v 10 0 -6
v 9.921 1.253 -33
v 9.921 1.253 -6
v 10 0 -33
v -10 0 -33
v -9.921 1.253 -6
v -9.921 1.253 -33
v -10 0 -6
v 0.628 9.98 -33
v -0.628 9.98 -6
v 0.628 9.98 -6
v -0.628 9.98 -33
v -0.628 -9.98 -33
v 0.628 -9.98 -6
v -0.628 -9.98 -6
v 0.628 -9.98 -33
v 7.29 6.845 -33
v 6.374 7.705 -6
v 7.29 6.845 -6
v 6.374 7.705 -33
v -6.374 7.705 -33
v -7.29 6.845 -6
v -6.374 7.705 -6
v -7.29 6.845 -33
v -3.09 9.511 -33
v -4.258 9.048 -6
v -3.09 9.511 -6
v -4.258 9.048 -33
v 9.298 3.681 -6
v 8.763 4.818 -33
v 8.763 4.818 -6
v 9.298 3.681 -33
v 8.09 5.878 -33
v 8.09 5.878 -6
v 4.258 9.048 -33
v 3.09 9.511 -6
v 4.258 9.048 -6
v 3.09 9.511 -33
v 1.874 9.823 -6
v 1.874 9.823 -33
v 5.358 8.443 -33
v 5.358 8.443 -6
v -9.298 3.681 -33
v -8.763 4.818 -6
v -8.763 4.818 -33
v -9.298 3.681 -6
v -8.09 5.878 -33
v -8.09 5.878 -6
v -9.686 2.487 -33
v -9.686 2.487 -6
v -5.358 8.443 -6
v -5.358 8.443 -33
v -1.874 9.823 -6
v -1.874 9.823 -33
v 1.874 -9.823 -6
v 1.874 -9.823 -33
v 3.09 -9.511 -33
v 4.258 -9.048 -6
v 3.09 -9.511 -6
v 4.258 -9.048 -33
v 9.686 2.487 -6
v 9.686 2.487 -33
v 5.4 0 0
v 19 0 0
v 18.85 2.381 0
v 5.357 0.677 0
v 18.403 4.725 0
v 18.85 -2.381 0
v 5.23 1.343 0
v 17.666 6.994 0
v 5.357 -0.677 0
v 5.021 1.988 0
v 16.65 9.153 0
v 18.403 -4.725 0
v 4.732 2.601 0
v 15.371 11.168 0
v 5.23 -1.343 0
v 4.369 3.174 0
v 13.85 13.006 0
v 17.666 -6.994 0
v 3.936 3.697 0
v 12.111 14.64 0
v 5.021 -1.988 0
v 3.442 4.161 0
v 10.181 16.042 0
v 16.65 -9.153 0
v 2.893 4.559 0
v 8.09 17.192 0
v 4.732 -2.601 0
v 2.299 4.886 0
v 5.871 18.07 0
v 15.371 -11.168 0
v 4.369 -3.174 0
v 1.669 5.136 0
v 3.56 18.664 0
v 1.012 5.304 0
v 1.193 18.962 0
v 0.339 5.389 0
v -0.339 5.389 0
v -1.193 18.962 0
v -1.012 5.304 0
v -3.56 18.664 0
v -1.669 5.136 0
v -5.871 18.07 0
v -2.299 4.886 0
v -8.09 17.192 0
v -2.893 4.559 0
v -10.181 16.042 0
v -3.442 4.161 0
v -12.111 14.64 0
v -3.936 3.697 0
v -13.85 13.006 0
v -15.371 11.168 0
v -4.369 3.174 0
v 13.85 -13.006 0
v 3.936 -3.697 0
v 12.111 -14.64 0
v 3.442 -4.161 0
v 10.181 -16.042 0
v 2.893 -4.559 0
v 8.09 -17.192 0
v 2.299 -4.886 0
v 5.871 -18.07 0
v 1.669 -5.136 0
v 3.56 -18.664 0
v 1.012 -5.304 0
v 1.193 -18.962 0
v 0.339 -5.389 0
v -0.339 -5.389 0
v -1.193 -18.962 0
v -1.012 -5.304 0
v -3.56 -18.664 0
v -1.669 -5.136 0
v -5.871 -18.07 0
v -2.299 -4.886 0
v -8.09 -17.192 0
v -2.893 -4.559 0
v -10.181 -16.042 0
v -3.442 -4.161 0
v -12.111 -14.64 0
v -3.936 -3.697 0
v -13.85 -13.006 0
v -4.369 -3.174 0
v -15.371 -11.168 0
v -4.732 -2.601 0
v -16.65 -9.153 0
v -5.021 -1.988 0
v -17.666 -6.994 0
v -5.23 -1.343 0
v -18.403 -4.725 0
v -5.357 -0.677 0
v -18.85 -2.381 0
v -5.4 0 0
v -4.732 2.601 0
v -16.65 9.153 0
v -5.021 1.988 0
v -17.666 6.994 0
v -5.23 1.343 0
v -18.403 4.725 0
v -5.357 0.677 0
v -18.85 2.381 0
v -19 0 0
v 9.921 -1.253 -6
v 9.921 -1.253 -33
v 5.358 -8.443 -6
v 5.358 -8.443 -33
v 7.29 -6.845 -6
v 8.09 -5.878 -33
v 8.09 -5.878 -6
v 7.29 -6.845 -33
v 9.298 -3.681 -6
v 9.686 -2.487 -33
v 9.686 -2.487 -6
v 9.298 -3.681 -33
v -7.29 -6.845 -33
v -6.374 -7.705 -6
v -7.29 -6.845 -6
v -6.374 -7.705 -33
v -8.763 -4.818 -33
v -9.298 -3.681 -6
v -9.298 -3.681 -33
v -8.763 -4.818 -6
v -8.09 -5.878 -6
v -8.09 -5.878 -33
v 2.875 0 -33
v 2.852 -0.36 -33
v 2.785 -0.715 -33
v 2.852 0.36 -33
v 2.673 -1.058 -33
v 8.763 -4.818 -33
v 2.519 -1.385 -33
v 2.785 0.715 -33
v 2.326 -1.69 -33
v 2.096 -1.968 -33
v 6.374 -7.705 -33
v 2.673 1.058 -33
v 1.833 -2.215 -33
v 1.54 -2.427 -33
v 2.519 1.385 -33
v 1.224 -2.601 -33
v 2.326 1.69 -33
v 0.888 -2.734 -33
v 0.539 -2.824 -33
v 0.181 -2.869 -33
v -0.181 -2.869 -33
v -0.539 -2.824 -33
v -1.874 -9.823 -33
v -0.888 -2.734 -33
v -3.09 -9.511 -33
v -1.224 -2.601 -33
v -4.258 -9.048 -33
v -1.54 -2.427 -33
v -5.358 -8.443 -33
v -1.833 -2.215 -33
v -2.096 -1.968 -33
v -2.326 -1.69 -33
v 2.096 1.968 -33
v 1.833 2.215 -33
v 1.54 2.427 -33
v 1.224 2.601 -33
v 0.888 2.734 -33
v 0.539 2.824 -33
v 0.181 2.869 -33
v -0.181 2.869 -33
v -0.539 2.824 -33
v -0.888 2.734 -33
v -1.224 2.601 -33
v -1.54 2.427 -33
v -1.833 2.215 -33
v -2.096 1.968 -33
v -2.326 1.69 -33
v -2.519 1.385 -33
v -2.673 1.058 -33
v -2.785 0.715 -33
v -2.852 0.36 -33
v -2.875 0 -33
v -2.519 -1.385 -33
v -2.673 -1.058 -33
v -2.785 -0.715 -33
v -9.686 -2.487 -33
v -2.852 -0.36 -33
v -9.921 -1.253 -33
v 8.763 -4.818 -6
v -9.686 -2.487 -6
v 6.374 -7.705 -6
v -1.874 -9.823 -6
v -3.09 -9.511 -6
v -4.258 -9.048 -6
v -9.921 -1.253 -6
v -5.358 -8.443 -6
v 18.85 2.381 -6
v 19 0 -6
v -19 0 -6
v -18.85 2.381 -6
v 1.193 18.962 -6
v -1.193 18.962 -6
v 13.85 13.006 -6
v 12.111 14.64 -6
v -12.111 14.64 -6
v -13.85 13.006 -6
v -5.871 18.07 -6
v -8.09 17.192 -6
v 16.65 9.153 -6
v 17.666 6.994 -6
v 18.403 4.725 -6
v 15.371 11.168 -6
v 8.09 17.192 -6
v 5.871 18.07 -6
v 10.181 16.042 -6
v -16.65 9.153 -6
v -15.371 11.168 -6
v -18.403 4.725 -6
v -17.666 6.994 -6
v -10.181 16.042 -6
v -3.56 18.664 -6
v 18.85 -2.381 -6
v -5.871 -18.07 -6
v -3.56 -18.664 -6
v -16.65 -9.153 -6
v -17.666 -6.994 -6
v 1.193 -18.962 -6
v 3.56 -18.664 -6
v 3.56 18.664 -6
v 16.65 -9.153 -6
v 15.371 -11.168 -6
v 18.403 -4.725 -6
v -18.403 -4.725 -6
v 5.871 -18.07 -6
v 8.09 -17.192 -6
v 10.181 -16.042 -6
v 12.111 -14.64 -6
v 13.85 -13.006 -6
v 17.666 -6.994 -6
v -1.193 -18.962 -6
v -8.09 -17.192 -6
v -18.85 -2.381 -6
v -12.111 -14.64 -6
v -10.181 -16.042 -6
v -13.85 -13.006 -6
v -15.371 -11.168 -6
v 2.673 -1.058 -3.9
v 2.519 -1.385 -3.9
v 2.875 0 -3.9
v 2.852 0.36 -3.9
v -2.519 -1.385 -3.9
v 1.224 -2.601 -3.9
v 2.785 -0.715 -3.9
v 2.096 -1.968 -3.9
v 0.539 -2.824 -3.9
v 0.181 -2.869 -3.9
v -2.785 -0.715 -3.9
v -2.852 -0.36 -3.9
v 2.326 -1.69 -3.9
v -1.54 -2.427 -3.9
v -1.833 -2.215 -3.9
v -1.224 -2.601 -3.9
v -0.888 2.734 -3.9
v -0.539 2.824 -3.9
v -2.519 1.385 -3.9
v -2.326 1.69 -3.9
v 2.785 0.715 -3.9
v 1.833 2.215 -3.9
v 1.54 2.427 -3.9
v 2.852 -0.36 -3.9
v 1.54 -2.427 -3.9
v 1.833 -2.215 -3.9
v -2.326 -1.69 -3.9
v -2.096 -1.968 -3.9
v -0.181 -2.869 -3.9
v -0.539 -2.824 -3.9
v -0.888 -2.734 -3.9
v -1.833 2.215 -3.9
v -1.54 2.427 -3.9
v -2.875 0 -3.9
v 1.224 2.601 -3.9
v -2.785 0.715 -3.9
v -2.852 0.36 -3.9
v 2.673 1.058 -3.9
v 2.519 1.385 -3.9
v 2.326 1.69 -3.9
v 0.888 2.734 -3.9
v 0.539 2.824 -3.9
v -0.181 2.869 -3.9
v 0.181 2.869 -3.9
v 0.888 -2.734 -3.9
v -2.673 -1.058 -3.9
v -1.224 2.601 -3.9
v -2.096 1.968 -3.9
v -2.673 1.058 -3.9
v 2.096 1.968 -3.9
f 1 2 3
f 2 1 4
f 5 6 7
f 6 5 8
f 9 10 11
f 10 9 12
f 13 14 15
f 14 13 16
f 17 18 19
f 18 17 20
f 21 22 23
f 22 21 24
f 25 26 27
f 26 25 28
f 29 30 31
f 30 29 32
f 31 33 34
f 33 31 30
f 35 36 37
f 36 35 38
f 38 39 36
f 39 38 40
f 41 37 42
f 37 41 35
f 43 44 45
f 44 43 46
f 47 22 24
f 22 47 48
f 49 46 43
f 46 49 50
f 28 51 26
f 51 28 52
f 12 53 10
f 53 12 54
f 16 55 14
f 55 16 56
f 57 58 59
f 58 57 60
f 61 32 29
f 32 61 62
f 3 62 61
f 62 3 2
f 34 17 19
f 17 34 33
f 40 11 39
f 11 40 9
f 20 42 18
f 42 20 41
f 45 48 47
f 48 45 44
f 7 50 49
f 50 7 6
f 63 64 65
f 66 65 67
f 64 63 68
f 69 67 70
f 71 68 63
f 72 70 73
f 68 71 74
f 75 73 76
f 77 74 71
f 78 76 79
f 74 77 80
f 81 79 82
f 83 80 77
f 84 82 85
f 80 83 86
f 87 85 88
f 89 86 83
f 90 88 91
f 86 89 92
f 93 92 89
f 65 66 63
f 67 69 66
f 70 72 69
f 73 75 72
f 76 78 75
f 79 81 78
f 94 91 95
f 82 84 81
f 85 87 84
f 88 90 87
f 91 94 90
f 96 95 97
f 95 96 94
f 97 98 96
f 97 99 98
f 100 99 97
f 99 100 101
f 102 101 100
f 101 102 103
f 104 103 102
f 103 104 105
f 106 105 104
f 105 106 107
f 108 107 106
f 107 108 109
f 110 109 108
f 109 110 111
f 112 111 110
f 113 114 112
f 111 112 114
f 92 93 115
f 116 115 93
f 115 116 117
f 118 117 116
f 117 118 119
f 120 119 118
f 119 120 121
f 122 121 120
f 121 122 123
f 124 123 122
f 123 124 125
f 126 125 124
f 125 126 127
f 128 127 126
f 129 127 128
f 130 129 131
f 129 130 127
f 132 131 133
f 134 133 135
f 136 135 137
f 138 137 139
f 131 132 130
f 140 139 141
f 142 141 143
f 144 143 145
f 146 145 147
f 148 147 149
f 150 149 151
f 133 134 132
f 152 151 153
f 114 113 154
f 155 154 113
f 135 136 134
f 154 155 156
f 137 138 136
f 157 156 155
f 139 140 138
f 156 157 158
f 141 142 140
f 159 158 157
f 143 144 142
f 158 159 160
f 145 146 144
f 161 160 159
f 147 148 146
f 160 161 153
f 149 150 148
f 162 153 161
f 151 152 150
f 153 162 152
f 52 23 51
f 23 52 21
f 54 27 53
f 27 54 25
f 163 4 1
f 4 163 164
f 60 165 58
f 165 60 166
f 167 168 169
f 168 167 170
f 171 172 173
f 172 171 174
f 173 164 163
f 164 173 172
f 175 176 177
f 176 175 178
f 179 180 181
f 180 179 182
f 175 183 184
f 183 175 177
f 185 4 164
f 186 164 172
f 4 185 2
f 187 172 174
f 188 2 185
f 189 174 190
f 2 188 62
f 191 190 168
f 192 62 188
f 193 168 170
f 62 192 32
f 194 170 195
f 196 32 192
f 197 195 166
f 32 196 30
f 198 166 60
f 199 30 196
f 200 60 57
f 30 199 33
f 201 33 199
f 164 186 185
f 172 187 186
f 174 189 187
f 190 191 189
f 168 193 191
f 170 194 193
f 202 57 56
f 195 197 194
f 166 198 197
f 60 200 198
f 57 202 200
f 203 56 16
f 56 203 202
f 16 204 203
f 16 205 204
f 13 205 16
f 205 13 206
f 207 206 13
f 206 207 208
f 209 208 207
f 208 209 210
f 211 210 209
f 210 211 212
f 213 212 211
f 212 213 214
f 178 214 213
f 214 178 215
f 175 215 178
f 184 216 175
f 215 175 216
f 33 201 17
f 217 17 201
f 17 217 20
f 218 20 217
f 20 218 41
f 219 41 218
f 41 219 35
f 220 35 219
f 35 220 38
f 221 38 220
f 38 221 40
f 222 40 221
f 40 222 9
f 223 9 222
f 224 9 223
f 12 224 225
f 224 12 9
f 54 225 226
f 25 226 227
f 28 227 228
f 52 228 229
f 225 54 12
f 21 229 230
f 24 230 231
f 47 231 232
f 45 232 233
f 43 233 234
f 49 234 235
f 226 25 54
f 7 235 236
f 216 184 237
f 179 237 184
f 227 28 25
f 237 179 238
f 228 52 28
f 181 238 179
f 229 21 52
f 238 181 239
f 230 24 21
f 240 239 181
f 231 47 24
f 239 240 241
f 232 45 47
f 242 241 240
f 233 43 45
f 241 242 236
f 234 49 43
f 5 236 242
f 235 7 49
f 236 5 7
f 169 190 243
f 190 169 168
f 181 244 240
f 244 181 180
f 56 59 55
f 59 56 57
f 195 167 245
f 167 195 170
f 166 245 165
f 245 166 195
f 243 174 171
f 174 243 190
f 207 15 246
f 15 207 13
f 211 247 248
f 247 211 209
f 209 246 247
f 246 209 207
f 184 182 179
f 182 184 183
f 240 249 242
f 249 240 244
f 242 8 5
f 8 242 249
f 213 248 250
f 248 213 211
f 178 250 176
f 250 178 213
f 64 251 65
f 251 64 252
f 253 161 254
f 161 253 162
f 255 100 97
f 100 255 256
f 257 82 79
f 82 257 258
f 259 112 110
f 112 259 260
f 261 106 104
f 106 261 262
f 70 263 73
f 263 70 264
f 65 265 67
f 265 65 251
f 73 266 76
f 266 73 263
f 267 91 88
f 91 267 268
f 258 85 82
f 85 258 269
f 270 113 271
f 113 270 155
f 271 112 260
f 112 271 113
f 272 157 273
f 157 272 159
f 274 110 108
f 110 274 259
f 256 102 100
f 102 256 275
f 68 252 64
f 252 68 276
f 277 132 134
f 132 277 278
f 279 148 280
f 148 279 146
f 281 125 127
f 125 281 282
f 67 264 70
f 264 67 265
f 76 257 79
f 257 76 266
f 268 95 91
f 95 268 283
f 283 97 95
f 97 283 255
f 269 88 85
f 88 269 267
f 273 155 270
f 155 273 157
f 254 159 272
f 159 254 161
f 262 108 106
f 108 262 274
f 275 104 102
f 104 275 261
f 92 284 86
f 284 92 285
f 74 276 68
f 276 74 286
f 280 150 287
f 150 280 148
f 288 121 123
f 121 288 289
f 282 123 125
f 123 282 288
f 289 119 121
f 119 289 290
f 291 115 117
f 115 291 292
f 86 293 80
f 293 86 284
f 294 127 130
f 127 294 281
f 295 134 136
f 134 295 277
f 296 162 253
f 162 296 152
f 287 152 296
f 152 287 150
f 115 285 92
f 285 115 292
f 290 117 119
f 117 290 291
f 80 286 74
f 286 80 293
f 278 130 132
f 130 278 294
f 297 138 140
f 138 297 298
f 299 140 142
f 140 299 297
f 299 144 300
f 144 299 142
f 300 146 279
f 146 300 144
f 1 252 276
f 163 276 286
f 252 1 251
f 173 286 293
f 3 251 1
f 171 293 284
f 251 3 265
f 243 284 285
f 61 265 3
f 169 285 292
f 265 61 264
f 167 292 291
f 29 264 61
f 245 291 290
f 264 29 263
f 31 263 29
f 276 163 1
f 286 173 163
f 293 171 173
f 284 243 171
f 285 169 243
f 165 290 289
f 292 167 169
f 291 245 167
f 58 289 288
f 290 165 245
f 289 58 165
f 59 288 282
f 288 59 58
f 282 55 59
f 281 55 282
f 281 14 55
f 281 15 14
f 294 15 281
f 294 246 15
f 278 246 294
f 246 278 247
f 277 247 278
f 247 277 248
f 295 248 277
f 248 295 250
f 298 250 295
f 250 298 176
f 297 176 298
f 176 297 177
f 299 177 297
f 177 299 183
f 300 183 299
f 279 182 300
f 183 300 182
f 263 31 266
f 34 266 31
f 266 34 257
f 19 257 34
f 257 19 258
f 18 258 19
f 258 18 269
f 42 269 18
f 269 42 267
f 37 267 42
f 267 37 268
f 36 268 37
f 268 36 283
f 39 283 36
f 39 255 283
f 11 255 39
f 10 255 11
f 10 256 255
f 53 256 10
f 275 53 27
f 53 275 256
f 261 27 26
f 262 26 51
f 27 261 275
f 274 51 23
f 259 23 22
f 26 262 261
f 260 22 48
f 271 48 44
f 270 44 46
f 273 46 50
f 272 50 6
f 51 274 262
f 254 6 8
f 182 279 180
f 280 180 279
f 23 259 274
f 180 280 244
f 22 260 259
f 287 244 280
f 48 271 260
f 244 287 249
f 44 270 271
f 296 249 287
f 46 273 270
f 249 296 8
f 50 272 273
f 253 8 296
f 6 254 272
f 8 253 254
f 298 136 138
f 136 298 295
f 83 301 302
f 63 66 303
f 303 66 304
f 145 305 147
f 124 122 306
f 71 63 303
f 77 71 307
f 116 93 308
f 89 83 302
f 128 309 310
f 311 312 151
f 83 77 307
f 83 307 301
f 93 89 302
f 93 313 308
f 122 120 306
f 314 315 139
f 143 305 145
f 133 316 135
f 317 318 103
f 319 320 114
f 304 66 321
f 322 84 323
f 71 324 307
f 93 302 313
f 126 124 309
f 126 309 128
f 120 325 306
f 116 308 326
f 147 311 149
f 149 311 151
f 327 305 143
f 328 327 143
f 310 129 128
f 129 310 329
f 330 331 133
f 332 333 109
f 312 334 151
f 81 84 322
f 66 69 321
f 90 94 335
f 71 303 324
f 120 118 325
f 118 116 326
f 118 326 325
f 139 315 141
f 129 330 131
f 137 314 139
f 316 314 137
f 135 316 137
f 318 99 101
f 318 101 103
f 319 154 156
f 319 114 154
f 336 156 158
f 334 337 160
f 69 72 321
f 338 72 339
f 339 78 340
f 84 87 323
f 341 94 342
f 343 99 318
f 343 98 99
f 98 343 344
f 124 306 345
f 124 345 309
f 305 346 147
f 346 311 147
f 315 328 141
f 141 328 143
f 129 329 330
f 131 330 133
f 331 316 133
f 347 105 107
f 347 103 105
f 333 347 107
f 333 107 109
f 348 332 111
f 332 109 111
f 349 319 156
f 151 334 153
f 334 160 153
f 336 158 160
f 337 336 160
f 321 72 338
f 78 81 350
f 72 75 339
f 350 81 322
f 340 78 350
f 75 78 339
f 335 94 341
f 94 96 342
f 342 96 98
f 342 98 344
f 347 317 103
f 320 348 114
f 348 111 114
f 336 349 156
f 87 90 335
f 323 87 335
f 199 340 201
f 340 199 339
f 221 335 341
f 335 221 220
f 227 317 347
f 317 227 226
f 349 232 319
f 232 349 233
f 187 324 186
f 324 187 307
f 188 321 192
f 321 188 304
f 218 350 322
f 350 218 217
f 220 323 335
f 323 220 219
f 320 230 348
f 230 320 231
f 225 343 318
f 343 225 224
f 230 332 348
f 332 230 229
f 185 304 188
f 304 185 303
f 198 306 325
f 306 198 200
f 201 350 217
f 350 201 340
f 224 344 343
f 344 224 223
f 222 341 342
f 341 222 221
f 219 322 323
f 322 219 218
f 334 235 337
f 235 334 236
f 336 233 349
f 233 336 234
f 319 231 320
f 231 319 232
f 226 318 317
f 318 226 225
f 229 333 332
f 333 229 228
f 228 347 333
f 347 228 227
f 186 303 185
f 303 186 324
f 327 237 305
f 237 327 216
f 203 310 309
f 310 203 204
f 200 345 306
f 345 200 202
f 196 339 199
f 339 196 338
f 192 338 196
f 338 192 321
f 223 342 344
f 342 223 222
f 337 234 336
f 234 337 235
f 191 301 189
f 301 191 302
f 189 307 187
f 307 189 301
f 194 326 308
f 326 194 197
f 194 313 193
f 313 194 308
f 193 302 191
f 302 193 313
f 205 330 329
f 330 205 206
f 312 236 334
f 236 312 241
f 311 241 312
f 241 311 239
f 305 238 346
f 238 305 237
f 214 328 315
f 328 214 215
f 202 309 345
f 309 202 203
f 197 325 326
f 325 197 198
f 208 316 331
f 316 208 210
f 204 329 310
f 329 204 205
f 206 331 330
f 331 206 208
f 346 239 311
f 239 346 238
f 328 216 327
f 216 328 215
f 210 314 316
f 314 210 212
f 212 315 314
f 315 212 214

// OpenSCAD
$fn = 50;


difference() {
	union() {
		translate(v = [0, 0, -33.0000000000]) {
			cylinder(h = 33, r = 10.0000000000);
		}
		translate(v = [0, 0, -6.0000000000]) {
			cylinder(h = 6, r = 19.0000000000);
		}
	}
	union() {
		translate(v = [0, 0, 0]) {
			rotate(a = [0, 0, 0]) {
				difference() {
					union() {
						#translate(v = [0, 0, -33.0000000000]) {
							cylinder(h = 33, r = 2.6000000000);
						}
						#translate(v = [0, 0, -3.9000000000]) {
							cylinder(h = 3.9000000000, r = 10.0000000000, r1 = 2.8750000000, r2 = 5.4000000000);
						}
						#translate(v = [0, 0, -33.0000000000]) {
							cylinder(h = 33, r = 2.8750000000);
						}
						#translate(v = [0, 0, -33.0000000000]) {
							cylinder(h = 33, r = 2.6000000000);
						}
					}
					union();
				}
			}
		}
	}
}
